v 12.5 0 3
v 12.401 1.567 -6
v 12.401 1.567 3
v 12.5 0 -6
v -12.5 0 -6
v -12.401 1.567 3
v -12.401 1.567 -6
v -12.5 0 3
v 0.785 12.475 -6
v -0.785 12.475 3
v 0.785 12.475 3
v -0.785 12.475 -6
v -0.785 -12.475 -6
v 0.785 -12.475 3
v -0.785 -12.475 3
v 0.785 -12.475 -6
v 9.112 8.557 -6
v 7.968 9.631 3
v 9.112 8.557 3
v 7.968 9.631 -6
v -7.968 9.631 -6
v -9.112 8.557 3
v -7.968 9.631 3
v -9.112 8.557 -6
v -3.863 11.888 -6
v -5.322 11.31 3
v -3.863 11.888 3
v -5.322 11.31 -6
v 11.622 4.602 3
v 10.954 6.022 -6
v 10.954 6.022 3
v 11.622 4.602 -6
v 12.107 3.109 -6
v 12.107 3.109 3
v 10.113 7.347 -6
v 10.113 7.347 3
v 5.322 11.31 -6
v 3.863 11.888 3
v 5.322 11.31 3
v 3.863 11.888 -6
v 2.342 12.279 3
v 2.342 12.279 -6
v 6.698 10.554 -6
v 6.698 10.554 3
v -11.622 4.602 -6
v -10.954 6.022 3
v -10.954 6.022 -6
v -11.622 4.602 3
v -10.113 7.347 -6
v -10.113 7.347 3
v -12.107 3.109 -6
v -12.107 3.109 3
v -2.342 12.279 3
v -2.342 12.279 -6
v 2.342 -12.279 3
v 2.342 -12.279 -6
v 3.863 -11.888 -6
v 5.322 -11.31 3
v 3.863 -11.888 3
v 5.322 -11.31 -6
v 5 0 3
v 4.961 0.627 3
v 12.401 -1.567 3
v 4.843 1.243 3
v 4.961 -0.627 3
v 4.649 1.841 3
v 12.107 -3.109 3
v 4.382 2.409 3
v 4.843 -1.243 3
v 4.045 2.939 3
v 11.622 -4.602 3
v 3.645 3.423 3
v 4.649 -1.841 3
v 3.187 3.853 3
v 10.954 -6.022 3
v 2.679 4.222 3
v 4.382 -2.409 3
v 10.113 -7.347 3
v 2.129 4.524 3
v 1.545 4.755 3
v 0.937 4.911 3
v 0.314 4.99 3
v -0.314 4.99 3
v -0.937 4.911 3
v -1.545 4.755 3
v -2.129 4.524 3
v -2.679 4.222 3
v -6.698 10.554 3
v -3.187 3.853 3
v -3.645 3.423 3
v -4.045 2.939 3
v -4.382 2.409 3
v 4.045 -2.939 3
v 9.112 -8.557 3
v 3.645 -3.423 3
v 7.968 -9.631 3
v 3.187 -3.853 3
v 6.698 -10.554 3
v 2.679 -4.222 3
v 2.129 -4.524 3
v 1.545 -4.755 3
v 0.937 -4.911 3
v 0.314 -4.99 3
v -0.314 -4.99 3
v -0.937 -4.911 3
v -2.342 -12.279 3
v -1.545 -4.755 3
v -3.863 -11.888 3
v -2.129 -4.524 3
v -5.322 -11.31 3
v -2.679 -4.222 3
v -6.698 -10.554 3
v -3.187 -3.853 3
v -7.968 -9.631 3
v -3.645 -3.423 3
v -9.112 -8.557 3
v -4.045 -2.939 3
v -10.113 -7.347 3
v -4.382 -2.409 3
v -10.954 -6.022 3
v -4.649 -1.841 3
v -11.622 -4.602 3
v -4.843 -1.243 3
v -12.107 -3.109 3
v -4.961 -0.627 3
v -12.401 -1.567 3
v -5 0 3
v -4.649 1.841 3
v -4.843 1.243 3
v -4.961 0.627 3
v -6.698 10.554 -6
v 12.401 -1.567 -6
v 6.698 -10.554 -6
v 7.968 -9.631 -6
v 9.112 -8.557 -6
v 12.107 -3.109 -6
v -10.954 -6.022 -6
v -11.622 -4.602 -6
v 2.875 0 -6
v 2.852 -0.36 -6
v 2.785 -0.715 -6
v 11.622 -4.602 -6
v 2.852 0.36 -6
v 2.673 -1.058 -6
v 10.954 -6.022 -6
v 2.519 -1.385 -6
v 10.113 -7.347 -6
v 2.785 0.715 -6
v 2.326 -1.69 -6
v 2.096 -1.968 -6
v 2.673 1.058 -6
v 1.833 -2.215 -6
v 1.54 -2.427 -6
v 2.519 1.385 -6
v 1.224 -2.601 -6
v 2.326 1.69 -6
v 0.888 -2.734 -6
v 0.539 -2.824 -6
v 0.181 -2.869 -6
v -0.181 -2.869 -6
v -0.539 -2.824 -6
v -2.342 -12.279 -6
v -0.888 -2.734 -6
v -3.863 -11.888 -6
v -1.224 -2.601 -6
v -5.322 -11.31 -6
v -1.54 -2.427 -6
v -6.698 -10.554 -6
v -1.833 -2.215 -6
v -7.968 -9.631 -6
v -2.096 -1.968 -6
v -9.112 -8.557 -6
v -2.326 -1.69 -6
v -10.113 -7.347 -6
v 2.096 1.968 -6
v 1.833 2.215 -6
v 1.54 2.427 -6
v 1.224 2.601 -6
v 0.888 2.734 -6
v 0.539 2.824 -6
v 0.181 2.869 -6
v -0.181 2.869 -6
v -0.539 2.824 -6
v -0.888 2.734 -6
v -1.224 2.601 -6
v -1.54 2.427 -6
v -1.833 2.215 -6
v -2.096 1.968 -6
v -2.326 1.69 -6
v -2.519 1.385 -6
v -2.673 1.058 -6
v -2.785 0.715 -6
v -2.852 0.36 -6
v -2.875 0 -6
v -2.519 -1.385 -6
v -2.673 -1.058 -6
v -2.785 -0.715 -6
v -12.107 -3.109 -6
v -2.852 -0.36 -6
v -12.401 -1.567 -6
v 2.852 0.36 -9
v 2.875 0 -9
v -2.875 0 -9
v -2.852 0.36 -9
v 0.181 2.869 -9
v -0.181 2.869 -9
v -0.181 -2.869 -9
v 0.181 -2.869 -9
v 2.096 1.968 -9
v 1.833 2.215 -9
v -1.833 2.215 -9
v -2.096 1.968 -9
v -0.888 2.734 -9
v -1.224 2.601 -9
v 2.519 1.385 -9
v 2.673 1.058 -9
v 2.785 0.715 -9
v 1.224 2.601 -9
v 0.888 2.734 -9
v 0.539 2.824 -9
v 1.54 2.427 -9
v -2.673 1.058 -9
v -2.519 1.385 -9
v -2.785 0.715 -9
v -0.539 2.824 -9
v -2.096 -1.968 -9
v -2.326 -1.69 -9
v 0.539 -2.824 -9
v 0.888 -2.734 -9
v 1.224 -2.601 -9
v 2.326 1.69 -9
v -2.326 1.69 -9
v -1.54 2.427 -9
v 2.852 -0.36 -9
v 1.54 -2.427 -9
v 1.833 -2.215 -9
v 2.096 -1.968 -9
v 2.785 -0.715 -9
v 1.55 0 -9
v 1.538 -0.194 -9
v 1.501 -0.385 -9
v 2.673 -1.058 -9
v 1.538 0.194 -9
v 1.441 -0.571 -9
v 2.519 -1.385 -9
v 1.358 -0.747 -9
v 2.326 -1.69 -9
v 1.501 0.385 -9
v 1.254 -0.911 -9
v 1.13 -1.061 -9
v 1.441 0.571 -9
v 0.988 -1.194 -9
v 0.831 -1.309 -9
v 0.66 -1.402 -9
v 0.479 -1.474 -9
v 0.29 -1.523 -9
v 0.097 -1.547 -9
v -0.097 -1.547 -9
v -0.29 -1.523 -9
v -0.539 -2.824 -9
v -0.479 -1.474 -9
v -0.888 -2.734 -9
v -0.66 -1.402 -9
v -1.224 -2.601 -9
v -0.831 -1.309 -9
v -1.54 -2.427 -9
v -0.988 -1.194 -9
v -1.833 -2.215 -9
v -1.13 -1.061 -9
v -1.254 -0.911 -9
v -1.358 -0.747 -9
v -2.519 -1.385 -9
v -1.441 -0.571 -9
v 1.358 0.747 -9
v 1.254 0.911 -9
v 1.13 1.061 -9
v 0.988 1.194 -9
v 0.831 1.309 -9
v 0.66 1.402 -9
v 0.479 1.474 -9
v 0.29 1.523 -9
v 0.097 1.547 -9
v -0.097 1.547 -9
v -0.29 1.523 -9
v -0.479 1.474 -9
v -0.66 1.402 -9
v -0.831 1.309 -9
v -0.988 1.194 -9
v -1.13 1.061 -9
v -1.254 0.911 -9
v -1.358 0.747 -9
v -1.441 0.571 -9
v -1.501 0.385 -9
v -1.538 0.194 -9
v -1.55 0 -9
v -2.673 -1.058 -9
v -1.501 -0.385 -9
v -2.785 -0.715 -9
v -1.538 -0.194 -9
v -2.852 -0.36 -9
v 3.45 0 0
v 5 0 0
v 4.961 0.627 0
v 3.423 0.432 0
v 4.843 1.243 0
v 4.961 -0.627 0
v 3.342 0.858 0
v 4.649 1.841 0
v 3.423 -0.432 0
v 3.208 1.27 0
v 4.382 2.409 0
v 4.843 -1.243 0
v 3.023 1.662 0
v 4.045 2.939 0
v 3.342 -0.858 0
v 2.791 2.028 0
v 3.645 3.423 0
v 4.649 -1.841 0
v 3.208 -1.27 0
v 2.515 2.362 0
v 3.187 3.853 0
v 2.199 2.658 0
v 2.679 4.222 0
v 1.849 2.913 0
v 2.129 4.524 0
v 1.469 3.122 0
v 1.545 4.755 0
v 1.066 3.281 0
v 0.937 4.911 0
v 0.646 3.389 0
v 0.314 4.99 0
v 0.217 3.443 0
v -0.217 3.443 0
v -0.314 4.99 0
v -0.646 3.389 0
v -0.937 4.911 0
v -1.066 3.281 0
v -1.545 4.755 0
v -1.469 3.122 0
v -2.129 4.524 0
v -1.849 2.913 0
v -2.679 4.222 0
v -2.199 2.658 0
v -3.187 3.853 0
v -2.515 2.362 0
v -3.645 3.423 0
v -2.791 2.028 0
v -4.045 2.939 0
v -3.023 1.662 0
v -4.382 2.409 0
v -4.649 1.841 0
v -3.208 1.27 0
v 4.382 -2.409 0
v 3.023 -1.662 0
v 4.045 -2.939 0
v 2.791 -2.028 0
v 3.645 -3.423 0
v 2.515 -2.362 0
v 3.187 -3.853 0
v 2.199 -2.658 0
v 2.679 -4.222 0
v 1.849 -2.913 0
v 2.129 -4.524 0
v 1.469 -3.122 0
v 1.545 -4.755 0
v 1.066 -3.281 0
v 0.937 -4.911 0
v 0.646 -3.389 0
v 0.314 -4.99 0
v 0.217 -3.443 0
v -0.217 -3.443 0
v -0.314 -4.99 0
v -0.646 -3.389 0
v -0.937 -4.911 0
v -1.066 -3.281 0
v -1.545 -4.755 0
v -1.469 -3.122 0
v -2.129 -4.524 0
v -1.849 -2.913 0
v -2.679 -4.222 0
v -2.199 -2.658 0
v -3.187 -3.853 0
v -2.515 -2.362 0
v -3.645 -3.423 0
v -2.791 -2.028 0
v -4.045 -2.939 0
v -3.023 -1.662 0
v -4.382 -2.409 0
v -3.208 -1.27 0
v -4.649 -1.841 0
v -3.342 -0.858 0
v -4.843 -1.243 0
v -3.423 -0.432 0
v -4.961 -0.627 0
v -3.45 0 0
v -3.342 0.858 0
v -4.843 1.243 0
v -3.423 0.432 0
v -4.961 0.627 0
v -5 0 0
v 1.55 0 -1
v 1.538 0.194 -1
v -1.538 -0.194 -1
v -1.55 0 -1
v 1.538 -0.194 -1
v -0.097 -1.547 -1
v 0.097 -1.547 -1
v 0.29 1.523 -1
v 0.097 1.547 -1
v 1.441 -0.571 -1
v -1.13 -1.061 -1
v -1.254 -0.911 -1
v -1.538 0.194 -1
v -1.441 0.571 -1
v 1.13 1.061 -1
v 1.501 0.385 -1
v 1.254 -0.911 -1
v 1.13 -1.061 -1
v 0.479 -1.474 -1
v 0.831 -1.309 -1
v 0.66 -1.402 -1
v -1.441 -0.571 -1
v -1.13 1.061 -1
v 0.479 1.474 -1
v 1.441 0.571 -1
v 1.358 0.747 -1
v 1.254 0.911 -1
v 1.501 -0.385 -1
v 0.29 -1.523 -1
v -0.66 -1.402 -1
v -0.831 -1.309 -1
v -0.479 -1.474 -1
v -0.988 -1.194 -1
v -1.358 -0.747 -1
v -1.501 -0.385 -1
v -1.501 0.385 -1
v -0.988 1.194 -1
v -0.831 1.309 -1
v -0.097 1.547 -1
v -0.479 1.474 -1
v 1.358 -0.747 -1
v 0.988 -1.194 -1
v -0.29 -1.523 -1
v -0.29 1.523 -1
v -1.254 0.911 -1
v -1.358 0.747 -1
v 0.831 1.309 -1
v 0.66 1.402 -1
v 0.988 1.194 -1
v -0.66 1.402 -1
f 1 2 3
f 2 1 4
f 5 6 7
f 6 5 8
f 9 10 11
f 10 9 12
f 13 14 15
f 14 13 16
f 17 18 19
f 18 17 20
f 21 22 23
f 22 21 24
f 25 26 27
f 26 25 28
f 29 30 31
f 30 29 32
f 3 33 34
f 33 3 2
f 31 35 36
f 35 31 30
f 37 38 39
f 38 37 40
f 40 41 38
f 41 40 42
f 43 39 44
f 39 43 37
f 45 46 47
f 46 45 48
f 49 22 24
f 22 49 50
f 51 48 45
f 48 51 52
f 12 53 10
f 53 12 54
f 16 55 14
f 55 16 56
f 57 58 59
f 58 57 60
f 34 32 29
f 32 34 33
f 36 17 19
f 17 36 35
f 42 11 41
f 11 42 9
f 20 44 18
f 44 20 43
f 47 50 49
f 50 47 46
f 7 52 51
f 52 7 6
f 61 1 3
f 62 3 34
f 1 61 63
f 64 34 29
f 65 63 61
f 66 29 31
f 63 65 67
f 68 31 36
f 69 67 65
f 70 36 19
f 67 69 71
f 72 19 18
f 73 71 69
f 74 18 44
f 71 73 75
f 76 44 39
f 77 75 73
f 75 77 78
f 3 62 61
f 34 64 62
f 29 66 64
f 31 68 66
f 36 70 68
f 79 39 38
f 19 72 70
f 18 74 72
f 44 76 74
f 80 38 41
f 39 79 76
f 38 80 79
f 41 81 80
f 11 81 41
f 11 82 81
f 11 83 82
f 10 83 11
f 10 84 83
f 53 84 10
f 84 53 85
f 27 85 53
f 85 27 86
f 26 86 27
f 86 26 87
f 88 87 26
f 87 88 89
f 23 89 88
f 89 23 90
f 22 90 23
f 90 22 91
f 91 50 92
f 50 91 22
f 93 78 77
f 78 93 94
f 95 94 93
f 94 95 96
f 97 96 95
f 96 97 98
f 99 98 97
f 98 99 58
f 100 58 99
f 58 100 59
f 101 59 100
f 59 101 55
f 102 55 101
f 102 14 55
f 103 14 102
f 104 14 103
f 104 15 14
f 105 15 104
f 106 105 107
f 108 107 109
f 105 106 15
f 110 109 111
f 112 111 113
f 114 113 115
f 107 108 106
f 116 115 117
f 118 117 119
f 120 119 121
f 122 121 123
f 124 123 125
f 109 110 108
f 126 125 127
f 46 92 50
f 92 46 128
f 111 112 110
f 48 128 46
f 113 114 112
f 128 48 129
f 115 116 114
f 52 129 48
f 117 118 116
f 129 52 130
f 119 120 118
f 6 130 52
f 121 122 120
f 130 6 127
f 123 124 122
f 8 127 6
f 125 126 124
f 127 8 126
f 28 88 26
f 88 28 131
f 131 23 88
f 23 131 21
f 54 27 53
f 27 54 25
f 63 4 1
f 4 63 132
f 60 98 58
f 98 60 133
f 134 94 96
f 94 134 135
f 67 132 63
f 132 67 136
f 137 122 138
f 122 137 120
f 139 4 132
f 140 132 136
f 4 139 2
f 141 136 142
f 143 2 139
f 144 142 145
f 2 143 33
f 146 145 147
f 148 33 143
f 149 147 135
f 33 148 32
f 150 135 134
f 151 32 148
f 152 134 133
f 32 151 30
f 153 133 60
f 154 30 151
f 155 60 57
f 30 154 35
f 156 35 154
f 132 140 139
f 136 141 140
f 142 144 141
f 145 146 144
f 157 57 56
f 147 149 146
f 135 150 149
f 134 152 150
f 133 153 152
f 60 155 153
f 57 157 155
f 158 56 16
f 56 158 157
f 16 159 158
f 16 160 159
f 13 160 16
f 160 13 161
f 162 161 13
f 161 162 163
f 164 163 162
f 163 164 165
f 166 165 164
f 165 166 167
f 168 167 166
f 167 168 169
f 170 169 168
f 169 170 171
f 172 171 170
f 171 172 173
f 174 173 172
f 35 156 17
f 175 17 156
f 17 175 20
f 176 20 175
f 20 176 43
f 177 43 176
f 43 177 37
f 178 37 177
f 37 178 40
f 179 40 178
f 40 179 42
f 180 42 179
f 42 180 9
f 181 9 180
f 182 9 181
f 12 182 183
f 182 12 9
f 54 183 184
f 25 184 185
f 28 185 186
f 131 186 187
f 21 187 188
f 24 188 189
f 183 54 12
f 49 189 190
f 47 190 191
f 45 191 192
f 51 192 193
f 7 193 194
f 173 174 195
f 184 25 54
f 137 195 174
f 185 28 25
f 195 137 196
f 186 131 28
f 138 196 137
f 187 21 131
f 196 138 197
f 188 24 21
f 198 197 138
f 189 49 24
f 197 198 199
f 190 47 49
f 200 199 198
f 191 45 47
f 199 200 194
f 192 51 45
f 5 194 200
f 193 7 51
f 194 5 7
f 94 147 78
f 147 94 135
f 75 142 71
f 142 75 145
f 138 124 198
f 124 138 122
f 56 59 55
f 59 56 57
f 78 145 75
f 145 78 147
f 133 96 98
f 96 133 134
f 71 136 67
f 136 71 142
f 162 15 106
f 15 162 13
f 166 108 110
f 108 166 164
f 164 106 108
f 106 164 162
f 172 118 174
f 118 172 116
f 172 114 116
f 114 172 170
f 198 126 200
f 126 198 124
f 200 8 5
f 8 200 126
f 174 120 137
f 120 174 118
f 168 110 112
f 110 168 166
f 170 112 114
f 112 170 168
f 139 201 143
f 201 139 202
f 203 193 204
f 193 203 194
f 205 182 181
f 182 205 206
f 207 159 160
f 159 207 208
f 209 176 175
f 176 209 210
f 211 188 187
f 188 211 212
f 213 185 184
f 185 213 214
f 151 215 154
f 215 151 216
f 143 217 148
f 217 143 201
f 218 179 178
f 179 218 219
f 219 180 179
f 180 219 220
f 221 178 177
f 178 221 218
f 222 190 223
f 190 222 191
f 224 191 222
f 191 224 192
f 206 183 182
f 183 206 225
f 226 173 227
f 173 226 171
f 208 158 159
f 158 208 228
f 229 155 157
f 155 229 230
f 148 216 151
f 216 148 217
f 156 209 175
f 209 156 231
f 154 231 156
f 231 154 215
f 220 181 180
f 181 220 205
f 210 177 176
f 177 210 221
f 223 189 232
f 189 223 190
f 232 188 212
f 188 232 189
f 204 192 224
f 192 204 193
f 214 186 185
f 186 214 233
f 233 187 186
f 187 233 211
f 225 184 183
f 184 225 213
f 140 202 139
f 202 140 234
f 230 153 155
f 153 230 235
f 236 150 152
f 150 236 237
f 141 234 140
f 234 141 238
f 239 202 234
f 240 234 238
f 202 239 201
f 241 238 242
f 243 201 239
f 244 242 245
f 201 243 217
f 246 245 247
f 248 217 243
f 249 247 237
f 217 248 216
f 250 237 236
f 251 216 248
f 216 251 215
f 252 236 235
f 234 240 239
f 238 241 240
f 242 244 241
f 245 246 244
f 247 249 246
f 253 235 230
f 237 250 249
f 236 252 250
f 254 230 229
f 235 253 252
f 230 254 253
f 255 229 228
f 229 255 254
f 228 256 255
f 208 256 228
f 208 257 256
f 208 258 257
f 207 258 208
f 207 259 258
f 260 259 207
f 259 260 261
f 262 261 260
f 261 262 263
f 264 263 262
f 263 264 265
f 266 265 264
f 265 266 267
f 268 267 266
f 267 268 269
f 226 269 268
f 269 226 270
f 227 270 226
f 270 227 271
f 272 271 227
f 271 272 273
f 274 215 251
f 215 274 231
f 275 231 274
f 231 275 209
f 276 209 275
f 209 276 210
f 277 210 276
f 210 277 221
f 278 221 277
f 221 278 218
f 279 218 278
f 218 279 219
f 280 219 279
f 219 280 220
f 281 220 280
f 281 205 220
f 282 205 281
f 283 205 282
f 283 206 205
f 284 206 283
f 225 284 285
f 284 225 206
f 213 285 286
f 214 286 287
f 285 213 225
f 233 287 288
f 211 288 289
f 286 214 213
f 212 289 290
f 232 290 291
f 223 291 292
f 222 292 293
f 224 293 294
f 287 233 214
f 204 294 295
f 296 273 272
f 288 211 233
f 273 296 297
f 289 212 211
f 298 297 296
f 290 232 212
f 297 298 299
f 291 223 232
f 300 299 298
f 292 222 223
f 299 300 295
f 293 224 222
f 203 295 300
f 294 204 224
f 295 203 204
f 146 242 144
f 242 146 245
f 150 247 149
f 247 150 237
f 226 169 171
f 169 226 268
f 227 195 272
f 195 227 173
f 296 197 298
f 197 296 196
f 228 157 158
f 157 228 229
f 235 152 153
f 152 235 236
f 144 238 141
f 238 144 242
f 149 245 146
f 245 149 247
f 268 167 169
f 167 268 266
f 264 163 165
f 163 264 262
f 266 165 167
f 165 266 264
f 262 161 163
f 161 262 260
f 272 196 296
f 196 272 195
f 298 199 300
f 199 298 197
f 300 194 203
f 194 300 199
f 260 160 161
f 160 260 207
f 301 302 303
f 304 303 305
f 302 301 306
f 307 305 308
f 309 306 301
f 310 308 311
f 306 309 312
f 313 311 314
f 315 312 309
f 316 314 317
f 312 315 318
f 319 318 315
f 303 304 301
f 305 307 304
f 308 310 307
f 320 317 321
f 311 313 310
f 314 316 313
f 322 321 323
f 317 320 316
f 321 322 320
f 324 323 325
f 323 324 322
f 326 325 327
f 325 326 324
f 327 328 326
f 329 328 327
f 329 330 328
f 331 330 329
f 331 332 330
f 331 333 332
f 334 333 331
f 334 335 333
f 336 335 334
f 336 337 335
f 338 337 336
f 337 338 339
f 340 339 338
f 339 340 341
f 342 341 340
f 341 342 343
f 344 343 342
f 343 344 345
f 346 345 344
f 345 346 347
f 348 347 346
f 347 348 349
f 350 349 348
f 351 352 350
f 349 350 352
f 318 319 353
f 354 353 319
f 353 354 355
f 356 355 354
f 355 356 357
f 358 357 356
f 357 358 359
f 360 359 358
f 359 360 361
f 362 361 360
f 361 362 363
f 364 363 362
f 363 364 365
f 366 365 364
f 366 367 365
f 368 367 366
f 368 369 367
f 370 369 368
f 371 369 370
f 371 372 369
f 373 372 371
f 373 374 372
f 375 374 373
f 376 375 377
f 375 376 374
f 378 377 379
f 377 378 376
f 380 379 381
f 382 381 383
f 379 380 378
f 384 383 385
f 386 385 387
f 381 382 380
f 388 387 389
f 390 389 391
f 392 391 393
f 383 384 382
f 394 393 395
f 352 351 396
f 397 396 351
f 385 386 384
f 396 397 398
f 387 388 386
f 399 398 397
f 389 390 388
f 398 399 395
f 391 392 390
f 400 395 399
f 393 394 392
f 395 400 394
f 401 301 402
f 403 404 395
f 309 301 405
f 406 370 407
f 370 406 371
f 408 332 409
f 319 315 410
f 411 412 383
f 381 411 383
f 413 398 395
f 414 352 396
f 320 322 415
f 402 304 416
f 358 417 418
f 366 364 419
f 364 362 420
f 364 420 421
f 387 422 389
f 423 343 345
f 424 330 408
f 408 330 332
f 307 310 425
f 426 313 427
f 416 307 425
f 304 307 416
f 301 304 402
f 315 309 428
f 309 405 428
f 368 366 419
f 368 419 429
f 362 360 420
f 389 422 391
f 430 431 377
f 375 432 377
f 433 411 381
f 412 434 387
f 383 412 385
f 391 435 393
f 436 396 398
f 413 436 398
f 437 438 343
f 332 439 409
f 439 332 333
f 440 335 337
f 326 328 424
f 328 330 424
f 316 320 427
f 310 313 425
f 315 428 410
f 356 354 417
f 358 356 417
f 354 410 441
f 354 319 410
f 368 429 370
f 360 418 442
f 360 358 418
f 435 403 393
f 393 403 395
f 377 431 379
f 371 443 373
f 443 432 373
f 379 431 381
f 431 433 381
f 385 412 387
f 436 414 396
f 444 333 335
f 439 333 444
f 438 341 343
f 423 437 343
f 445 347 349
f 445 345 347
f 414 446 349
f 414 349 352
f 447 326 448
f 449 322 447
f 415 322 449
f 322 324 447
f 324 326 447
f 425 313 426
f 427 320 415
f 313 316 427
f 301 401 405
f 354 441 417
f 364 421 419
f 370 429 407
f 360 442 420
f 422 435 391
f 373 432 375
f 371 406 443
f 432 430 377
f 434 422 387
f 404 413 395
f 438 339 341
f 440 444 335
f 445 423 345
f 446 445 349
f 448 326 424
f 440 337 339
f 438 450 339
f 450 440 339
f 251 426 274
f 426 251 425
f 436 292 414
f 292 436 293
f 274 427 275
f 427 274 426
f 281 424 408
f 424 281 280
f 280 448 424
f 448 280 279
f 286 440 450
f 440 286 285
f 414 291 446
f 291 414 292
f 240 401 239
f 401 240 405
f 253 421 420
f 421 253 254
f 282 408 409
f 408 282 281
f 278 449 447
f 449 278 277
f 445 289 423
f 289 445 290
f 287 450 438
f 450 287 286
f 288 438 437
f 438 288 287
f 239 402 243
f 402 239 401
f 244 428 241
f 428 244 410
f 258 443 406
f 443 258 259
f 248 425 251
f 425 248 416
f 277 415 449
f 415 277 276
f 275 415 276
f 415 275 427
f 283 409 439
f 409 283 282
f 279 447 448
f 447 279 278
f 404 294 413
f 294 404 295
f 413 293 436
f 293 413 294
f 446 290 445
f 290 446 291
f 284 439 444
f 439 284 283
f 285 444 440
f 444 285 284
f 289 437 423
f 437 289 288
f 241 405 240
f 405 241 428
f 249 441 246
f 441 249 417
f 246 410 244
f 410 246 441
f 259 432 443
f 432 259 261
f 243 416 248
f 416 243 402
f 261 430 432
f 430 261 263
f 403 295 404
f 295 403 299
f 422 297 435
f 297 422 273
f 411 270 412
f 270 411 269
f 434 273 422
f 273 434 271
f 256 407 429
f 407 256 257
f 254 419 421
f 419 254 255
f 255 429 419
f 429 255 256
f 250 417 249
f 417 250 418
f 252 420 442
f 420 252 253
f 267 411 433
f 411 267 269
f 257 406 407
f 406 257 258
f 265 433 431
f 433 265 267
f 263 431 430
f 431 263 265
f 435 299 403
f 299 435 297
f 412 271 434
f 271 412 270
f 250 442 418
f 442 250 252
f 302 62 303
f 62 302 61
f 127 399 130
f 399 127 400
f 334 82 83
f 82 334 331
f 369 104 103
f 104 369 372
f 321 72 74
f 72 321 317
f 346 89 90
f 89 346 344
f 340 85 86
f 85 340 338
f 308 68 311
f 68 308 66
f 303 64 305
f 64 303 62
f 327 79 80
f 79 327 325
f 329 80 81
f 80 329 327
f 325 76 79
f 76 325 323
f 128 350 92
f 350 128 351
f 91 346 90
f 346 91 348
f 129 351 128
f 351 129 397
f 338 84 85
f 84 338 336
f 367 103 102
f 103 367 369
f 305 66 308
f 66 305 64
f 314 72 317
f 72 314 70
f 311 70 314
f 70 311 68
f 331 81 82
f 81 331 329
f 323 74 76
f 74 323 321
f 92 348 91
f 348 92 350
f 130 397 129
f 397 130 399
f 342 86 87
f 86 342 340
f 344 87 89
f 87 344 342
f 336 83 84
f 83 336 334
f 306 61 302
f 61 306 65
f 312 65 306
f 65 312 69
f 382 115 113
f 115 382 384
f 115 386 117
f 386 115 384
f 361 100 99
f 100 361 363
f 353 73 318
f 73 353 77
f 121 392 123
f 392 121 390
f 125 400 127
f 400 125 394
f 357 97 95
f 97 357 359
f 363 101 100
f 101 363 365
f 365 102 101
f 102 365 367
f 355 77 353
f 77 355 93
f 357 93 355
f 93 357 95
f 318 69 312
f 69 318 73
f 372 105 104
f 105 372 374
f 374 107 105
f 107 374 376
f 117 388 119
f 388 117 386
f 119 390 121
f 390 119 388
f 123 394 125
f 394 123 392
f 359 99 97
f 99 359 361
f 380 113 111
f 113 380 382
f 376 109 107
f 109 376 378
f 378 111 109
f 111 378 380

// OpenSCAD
$fn = 50;

difference() {
	union() {
		translate(v = [0, 0, -6.0]) {
			cylinder(h = 9, r = 12.5);
		}
		#translate(v = [0, 0, -9.0]) {
			cylinder(h = 9, r = 2.875);
		}
	}
	union() {
		translate(v = [0, 0, 0]) {
			rotate(a = [0, 0, 0]) {
				difference() {
					union() {
						translate(v = [0, 0, -9.0]) {
							cylinder(h = 9, r = 1.25);
						}
						translate(v = [0, 0, -1.0]) {
							cylinder(h = 1.0, r1 = 1.55, r2 = 3.45);
						}
						translate(v = [0, 0, -9.0]) {
							cylinder(h = 9, r = 1.55);
						}
						translate(v = [0, 0, -9.0]) {
							cylinder(h = 9, r = 1.25);
						}
					}
					union();
				}
			}
		}
		#cylinder(h = 3, r = 5.0);
	}
}
